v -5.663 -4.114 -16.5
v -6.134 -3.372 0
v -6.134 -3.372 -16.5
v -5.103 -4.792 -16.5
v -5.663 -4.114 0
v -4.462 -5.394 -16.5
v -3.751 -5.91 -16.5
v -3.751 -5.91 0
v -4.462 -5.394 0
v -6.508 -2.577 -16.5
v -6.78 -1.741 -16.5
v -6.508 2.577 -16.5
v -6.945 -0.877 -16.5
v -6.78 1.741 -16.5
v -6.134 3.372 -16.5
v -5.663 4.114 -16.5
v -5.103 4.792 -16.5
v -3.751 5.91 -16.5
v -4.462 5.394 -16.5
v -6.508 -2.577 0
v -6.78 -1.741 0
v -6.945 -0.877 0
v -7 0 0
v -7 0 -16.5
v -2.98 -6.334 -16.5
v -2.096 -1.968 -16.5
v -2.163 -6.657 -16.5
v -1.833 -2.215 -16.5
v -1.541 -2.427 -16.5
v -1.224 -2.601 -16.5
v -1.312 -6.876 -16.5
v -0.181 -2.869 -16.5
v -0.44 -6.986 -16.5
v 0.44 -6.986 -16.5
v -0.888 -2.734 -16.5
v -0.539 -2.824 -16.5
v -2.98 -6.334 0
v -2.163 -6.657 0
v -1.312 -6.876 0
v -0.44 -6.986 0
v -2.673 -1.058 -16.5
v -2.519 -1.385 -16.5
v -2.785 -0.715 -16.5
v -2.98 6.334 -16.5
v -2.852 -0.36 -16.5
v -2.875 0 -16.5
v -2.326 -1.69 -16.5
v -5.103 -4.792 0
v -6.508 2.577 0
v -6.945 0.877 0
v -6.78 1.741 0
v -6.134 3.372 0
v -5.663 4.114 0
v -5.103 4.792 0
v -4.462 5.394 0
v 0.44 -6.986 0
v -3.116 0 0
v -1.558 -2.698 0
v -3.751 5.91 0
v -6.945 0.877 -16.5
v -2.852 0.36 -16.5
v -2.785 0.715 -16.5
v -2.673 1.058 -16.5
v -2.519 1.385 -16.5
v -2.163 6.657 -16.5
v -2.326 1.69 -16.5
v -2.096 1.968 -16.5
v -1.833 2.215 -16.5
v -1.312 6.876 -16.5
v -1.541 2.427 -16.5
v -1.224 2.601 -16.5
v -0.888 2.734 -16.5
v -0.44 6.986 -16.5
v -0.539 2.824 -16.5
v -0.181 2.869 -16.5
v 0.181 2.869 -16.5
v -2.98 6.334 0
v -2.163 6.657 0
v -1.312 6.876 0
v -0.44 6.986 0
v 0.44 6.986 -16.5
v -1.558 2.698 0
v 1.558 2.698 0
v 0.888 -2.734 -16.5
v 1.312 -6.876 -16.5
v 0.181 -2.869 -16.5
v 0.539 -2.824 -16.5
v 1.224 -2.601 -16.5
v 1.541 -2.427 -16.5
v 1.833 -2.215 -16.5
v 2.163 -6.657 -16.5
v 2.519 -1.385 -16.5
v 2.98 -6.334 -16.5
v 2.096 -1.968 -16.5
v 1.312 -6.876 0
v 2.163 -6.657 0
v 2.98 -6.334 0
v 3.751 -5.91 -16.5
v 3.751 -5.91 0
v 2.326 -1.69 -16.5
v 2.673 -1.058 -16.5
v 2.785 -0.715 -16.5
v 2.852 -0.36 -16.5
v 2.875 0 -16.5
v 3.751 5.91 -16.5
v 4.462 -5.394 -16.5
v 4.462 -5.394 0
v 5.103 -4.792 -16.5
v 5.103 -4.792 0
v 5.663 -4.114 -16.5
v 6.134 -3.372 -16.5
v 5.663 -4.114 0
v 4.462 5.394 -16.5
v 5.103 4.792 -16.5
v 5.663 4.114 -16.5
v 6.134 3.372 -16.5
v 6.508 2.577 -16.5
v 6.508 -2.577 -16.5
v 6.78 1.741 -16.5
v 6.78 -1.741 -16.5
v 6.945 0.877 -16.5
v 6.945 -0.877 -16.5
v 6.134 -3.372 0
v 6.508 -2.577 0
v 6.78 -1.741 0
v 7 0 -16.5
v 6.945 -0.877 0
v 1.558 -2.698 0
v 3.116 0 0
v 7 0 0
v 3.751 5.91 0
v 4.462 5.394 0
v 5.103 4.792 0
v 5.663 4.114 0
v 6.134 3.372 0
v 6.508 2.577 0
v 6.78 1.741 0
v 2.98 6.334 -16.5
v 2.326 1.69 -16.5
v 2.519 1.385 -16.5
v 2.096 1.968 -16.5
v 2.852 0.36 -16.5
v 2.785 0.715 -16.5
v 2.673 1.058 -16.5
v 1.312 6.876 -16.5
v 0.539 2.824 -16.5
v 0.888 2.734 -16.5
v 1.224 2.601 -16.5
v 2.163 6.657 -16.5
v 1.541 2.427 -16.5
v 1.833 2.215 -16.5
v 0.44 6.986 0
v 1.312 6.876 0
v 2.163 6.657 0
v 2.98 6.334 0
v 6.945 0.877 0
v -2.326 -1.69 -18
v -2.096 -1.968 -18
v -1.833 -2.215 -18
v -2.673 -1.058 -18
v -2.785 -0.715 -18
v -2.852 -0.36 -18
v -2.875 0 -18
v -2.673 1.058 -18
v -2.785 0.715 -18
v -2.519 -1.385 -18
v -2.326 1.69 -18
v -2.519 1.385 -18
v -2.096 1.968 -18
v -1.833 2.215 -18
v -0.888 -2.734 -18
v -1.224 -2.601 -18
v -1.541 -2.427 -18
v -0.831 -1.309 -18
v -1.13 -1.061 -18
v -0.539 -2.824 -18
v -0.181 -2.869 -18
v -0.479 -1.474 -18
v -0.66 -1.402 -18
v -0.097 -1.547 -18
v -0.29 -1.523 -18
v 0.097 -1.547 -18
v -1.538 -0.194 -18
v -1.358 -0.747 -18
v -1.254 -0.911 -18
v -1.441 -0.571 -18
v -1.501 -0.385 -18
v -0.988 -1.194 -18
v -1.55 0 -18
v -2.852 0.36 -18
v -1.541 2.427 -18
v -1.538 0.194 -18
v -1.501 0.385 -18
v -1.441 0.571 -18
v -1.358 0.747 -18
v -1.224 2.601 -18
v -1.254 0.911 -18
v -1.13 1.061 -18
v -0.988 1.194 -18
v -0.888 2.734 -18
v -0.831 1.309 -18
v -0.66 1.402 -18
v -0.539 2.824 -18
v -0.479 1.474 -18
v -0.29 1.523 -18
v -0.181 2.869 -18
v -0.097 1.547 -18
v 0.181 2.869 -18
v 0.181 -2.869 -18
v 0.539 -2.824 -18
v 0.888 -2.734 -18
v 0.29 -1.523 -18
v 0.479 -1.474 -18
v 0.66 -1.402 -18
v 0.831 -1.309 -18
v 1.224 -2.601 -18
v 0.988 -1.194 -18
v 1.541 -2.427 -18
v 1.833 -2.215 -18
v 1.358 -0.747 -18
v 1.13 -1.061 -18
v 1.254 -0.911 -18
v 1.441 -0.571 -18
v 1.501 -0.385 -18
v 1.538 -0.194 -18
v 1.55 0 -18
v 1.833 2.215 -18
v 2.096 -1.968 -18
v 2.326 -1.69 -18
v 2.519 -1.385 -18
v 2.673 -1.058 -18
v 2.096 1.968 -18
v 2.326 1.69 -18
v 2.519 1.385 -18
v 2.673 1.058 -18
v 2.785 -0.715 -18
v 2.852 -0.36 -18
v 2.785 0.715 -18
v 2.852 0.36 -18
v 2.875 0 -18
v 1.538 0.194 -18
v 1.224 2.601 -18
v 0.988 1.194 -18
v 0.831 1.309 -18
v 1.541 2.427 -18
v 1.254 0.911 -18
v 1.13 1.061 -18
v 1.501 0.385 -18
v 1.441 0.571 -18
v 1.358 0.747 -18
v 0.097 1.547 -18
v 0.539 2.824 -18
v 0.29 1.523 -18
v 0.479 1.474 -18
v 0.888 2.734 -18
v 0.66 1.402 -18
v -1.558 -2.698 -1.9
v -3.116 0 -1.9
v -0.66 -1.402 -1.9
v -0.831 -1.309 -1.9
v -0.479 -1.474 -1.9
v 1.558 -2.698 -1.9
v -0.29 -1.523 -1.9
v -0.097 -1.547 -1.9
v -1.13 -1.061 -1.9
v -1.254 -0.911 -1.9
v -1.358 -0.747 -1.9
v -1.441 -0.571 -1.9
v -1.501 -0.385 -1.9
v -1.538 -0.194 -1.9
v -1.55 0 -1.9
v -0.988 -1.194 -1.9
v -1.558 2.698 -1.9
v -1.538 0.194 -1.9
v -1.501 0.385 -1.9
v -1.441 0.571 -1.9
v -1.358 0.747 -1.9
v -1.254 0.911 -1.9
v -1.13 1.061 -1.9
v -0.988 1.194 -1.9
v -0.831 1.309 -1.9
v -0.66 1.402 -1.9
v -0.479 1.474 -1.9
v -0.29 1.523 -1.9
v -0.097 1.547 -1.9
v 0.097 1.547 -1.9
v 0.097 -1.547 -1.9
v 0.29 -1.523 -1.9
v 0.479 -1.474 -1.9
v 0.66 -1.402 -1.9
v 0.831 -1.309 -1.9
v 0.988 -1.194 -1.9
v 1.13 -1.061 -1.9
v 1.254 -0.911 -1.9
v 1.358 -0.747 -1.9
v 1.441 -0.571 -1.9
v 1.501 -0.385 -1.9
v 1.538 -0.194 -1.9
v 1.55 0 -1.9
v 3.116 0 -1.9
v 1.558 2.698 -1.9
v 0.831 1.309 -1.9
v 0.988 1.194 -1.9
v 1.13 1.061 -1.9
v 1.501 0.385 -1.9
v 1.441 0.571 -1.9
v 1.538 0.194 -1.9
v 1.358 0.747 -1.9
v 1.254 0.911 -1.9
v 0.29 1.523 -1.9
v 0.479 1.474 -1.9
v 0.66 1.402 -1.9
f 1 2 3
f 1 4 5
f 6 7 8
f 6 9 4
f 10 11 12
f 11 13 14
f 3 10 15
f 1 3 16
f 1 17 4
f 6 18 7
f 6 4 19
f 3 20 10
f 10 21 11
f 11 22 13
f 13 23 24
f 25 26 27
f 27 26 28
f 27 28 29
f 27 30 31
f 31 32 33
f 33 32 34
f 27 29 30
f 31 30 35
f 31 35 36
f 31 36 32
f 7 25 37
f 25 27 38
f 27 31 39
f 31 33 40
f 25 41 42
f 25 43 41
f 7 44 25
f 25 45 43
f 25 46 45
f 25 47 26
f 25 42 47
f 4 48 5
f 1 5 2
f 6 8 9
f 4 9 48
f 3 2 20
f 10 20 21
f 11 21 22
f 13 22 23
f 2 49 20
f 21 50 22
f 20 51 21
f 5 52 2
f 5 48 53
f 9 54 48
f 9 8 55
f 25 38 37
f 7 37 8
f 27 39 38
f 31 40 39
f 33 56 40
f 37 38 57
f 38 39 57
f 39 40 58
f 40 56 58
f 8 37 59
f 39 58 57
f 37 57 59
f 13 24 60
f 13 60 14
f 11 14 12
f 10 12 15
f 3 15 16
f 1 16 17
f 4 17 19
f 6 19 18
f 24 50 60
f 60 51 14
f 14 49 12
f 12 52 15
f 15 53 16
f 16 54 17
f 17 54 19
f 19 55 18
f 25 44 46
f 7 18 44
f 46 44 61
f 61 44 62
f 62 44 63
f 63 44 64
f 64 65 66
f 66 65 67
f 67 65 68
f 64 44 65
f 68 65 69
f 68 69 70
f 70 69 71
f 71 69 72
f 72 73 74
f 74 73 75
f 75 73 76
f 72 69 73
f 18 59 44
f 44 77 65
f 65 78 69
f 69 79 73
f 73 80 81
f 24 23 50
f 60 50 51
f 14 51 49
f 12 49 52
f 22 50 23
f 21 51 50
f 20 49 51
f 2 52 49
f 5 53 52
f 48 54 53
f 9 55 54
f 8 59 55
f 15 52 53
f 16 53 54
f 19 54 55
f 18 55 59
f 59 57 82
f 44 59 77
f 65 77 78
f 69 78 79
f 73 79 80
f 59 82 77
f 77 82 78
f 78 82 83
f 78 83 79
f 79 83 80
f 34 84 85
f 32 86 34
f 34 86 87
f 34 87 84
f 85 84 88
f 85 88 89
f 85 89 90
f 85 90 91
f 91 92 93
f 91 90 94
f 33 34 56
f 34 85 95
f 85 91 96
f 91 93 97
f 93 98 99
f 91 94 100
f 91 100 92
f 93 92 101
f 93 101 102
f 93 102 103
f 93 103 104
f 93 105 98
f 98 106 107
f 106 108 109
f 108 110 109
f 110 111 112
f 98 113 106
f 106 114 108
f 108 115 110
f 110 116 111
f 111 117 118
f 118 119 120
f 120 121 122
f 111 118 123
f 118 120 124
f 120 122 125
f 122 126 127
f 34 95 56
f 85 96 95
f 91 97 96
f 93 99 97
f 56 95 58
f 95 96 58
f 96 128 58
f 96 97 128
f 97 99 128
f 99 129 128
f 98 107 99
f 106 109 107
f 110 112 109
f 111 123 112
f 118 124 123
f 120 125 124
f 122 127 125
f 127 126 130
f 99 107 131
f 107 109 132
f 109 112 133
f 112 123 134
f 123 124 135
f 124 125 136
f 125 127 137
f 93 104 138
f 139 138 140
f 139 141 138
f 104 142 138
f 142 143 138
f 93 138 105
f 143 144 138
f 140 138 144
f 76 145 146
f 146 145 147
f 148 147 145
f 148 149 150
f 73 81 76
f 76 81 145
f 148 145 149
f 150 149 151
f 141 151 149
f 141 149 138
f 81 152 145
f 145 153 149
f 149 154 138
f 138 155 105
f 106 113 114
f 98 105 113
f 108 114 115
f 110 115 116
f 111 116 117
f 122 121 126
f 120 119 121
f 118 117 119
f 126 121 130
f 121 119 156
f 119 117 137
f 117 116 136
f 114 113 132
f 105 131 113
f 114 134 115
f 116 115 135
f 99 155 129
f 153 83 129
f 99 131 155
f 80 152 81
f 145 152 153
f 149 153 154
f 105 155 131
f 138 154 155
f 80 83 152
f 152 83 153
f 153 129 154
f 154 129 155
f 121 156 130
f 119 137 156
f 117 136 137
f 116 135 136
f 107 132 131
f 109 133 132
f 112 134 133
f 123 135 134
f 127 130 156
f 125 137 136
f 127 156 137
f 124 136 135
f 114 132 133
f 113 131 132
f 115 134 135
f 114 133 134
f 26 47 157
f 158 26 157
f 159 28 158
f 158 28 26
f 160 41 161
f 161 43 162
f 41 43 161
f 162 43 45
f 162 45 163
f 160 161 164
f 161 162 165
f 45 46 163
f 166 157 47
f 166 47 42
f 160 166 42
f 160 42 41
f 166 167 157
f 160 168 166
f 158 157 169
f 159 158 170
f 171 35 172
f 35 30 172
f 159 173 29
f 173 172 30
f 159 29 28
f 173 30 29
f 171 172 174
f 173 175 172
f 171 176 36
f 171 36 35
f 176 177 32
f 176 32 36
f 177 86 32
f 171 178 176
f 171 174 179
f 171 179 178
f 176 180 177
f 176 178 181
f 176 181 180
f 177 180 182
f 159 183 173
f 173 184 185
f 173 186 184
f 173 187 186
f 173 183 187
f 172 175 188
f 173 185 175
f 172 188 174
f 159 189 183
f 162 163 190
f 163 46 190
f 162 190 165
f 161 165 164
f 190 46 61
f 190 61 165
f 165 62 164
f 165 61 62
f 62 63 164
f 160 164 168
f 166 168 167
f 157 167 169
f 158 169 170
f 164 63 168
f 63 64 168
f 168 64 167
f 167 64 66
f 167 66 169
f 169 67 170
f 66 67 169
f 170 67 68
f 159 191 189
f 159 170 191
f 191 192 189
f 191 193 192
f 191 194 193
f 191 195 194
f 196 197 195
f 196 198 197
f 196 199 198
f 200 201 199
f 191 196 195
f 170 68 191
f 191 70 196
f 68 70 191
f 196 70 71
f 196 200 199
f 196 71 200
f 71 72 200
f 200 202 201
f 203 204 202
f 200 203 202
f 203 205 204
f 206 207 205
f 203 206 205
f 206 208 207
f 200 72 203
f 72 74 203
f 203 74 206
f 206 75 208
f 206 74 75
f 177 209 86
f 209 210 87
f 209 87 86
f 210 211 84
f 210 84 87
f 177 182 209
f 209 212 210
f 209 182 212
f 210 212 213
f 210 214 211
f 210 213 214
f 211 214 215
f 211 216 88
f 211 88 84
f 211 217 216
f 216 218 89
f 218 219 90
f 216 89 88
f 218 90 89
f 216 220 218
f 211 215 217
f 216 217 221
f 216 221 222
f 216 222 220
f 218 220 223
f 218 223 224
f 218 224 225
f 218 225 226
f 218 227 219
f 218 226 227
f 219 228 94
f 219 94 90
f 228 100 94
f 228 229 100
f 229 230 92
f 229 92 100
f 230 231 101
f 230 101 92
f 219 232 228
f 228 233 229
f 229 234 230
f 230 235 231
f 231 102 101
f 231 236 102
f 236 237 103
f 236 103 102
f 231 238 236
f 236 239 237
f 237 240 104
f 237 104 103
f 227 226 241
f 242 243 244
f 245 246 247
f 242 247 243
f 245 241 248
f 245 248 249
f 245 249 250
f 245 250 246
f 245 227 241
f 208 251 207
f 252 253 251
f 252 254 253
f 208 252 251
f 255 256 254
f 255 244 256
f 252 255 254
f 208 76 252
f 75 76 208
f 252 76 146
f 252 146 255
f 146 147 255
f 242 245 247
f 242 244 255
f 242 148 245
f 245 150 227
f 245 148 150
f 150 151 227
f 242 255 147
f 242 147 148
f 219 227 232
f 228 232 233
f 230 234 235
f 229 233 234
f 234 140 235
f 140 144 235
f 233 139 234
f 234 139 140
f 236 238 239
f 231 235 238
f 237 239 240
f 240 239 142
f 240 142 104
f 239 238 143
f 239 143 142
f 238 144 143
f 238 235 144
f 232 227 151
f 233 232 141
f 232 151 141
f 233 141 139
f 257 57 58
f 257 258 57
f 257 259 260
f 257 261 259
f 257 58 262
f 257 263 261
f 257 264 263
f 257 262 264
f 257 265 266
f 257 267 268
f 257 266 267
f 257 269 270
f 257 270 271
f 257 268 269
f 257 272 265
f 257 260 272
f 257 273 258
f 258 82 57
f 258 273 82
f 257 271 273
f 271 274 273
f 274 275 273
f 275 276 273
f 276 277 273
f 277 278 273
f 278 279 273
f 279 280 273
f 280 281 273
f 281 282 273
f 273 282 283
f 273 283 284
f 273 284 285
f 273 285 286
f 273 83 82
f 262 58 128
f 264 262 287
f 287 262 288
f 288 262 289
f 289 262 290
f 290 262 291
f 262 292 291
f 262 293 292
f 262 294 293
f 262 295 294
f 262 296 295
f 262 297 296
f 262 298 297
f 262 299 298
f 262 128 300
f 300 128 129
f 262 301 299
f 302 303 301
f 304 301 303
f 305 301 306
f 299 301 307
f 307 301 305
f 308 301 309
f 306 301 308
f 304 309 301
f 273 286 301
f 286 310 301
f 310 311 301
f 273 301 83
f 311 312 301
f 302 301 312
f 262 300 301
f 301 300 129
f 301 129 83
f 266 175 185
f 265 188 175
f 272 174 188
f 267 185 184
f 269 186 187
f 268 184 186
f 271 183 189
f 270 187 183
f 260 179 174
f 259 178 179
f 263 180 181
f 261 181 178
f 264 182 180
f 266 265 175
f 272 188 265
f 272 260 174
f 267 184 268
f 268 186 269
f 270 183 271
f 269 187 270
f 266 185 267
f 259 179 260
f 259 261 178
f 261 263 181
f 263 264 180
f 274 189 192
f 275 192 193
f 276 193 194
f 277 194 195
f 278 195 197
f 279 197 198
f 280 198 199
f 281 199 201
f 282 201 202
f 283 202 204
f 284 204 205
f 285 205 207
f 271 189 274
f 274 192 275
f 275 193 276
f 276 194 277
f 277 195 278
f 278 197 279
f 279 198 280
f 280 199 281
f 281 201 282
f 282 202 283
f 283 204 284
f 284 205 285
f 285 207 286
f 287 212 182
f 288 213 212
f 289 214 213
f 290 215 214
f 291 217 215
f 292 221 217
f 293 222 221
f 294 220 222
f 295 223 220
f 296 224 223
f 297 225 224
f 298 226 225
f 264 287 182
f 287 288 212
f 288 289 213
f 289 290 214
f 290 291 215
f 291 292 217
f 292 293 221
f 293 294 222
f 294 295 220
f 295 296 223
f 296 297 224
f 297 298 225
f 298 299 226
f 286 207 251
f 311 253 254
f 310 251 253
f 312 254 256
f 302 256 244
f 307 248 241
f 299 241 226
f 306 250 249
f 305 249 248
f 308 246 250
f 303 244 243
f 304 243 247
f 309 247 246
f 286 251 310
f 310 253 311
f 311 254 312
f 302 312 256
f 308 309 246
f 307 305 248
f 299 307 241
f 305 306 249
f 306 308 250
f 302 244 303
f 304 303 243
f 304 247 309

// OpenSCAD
$fn = 50;


difference() {
	union() {
		translate(v = [0, 0, -16.5000000000]) {
			cylinder(h = 16.5000000000, r = 7.0000000000);
		}
		#translate(v = [0, 0, -18.0000000000]) {
			cylinder(h = 18, r = 2.8750000000);
		}
	}
	union() {
		translate(v = [0, 0, 0]) {
			rotate(a = [0, 0, 0]) {
				difference() {
					union() {
						translate(v = [0, 0, -1.9000000000]) {
							linear_extrude(height = 1.9000000000) {
								polygon(points = [[3.1158000000, 0.0000000000], [1.5579000000, 2.6983619531], [-1.5579000000, 2.6983619531], [-3.1158000000, 0.0000000000], [-1.5579000000, -2.6983619531], [1.5579000000, -2.6983619531]]);
							}
						}
					}
					union();
				}
			}
		}
		#translate(v = [0, 0, -100.0000000000]) {
			cylinder(h = 200, r = 1.5500000000);
		}
	}
}
